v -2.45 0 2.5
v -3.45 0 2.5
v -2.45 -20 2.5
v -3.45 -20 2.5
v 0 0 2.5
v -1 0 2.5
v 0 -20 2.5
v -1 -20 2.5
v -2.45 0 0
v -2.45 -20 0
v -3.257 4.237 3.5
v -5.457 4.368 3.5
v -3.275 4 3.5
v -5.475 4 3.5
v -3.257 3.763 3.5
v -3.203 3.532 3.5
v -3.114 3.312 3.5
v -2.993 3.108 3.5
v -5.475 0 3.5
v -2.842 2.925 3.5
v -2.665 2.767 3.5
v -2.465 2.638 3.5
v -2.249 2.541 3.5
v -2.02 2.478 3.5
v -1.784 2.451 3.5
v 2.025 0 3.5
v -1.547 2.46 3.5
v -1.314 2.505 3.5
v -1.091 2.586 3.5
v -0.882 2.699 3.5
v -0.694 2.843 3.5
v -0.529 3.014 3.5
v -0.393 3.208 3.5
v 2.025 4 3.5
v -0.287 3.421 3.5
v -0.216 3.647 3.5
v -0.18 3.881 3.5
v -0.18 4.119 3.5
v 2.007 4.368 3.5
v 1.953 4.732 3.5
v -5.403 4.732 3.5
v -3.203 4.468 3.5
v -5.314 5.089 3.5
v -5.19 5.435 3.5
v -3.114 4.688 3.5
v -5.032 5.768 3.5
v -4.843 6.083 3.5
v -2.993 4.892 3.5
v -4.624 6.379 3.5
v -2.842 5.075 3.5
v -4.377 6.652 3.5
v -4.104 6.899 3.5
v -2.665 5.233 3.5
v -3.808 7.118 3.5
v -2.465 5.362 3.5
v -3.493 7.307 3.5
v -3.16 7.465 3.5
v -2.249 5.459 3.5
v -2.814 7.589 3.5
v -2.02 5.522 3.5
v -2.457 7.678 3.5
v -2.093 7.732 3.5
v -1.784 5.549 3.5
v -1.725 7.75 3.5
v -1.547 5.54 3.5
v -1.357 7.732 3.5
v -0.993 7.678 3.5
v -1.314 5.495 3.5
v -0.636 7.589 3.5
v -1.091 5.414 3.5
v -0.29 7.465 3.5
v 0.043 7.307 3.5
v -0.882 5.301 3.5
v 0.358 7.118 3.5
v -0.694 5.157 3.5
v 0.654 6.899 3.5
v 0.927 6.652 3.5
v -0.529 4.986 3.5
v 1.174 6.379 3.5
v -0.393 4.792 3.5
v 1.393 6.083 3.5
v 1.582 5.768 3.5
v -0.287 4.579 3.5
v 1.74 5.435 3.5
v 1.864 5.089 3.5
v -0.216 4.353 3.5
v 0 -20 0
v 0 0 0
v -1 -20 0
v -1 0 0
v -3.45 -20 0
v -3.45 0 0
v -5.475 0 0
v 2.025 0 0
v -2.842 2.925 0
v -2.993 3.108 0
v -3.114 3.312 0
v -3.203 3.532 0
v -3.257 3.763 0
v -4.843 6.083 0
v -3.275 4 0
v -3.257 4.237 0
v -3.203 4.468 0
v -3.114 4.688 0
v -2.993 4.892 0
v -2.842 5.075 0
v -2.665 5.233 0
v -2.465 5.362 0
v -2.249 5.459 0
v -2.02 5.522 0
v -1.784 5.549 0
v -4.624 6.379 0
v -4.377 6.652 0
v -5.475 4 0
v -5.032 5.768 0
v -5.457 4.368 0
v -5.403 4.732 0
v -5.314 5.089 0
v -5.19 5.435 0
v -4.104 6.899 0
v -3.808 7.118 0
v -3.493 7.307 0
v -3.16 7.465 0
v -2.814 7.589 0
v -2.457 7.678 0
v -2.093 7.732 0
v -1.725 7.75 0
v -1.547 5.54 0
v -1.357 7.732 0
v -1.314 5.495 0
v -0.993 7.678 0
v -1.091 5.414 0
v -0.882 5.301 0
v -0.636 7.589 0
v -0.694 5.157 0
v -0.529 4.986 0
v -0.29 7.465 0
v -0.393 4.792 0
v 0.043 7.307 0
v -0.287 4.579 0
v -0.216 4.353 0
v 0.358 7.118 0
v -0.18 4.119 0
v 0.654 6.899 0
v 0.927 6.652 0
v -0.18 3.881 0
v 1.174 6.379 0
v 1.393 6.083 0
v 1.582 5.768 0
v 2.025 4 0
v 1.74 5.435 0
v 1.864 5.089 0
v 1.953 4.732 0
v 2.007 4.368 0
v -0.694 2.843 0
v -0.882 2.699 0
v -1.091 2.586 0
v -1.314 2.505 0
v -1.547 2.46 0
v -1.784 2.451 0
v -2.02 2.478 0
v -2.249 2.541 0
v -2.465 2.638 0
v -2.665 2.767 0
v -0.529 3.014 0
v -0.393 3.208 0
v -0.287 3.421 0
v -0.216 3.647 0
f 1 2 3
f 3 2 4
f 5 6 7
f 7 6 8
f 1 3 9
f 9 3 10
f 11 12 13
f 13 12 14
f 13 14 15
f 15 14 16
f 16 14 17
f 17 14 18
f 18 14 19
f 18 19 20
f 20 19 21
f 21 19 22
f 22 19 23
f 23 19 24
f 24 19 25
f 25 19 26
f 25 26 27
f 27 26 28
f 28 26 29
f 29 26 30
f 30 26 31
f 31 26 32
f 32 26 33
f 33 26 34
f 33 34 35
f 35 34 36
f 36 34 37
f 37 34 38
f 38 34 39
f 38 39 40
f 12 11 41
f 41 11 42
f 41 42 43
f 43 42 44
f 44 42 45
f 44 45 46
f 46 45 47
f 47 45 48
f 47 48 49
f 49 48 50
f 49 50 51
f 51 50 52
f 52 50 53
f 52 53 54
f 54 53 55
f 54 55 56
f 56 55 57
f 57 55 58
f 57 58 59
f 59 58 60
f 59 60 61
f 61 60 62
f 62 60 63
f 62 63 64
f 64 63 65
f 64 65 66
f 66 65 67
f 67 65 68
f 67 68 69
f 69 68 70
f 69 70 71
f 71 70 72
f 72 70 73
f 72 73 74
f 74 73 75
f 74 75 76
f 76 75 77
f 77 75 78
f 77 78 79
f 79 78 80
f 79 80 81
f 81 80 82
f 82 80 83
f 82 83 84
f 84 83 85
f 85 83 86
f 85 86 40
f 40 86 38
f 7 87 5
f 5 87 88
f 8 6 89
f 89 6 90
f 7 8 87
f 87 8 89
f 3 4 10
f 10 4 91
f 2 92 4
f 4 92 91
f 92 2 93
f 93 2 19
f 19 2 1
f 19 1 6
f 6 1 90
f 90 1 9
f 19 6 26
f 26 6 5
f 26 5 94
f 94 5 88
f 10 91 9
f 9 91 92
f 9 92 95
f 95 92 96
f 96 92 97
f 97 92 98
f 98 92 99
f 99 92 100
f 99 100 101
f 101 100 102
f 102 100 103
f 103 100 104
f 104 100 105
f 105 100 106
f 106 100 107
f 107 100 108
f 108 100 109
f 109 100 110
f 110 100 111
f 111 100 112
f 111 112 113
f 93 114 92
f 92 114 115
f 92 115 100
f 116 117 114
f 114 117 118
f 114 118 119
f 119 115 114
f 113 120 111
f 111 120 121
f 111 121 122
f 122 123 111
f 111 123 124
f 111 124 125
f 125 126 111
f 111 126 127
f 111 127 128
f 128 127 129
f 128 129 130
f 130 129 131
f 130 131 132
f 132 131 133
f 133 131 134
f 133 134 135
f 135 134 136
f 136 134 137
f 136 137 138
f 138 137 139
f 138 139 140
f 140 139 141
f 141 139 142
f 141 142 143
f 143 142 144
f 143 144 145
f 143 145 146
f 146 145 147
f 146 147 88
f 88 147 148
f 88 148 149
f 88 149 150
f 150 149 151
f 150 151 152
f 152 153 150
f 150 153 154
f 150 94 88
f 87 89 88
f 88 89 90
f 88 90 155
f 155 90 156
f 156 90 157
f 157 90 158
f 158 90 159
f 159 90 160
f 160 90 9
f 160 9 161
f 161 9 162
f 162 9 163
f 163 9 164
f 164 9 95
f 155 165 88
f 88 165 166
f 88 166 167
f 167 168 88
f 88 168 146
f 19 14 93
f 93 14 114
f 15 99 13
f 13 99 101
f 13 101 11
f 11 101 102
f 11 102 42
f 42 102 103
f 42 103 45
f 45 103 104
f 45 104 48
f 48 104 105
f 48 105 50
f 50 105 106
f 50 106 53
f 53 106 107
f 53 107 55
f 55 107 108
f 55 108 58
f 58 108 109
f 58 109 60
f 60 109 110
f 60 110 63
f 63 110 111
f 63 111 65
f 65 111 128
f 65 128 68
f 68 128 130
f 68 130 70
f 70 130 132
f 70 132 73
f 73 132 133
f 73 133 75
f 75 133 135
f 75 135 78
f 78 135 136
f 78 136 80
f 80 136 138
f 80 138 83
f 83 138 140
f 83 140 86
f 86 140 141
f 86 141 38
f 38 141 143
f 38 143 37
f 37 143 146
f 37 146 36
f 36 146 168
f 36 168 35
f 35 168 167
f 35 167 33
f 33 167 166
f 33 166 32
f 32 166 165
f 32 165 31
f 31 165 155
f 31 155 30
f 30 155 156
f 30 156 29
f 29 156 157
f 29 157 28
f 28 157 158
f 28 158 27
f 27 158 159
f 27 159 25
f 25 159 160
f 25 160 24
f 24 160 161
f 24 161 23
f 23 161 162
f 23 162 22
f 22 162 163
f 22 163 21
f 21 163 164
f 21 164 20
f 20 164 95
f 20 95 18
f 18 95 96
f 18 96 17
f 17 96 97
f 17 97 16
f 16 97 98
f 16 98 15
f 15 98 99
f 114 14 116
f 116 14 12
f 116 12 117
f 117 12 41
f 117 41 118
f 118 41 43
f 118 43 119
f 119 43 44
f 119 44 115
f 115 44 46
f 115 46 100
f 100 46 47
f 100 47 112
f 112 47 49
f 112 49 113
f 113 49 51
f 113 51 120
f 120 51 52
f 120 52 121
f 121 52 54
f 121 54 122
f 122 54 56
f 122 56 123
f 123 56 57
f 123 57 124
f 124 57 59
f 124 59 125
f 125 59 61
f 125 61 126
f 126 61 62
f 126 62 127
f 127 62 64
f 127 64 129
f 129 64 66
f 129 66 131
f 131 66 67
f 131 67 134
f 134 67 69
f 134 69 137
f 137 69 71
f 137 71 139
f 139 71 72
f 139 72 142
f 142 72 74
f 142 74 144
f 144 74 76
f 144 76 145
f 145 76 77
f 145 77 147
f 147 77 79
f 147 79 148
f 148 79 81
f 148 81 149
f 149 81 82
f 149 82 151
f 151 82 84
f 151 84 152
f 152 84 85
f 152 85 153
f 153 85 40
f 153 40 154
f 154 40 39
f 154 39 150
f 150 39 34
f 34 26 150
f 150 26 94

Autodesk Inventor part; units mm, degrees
ref_plane "YZ Plane" through (0, 0, 0) normal (1, 0, 0) x (0, 1, 0)
ref_plane "XZ Plane" through (0, 0, 0) normal (0, 1, 0) x (-1, 0, 0)
ref_plane "XY Plane" through (0, 0, 0) normal (0, 0, 1) x (1, 0, 0)
sketch "Sketch1" plane through (0, 0, 0) normal (0, 0, 1) x (1, 0, 0)
  line L0 (0, 0) -> (-3.45, 0)
  line L1 (-3.45, 0) -> (-3.45, -20)
  line L2 (-3.45, -20) -> (0, -20)
  line L3 (0, -20) -> (0, 0)
  line L4 (-1.725, -20) -> (-5.425, -20)
  line L5 (-5.425, -20) -> (1.925, -20)
  line L6 (1.925, -20) -> (1.925, -25)
  line L7 (1.925, -25) -> (-5.425, -25)
  line L8 (-5.425, -25) -> (-5.425, -20)
  dimension "d0" = 20
  dimension "d1" = 3.45
  dimension "d2" = 3.7
  dimension "d3" = 7.35
  dimension "d4" = 5
extrude "Extrusion1" add sketch "Sketch1" along normal blind 3.5
sketch "Sketch4" plane through (0, 0, 0) normal (0, 0, -1) x (-1, 0, 0)
  line L0 (0, -20) -> (0, 0) projected
  line L1 (-1.925, -20) -> (0, -20) projected
  line L2 (-1.925, -25) -> (-1.925, -20) projected
  line L3 (5.425, -25) -> (-1.925, -25) projected
  line L4 (5.425, -20) -> (5.425, -25) projected
  line L5 (3.45, -20) -> (5.425, -20) projected
  line L6 (3.45, 0) -> (3.45, -20) projected
  line L7 (0, 0) -> (3.45, 0) projected
  line L8 (3.45, 0) -> (5.475, 0)
  line L9 (0, 0) -> (-2.025, 0)
  line L10 (5.475, 0) -> (-2.025, 0)
  line L11 (-2.025, 0) -> (-2.025, 4)
  line L12 (-2.025, 4) -> (5.475, 4)
  line L13 (5.475, 4) -> (5.475, 0)
  circle A0 centre (1.725, 4) radius 3.75
  circle A1 centre (1.725, 4) radius 1.55
  dimension "d22" = 2.025
  dimension "d23" = 2.025
  dimension "d24" = 7.5
  dimension "d25" = 4
  dimension "d26" = 3.1
extrude "Extrusion4" add sketch "Sketch4" against normal up to surface (3.5 mm away) contours L9 L11 A0 L13 L8 L7 | A0 L12 A1 | L12 A1 A0
sketch "Sketch5" plane through (0, 0, 3.5) normal (0, 0, 1) x (1, 0, 0)
  circle A0 centre (-1.725, 4) radius 1.55 projected
  line L0 (0, -20) -> (0, 0) projected
  line L1 (2.025, 0) -> (0, 0) projected
  line L2 (2.025, 4) -> (2.025, 0) projected
  arc A1 (2.025, 4) -> (-5.475, 4) centre (-1.725, 4) ccw projected
  line L3 (-5.475, 0) -> (-5.475, 4) projected
  line L4 (-3.45, 0) -> (-5.475, 0) projected
  line L5 (-3.45, 0) -> (-3.45, -20) projected
  line L6 (-3.45, -20) -> (-5.425, -20) projected
  line L7 (-5.425, -20) -> (-5.425, -25) projected
  line L8 (-5.425, -25) -> (1.925, -25) projected
  line L9 (1.925, -25) -> (1.925, -20) projected
  line L10 (1.925, -20) -> (0, -20) projected
  line L11 (-3.45, -10) -> (0, -10)
  line L12 (-1.725, -10) -> (-1, -10)
  line L13 (-1, -10) -> (-2.45, -10)
  line L14 (-2.45, -10) -> (-2.45, -20)
  line L15 (-2.45, -20) -> (-3.45, -20)
  line L16 (-1, -10) -> (-1, -20)
  line L17 (0, -20) -> (-1, -20)
  dimension "d31" = 1
  dimension "d32" = 1
extrude "Extrusion5" cut sketch "Sketch5" against normal blind 1.75 contours L10 L9 L8 L7 L6 L15 L14 L11 L16 L17
sketch "Sketch6" plane through (0, 0, 1.75) normal (0, 0, 1) x (1, 0, 0)
  line L0 (1.925, -20) -> (1.925, -25) projected
  line L1 (0, -20) -> (1.925, -20) projected
  line L2 (-1, -20) -> (0, -20) projected
  line L3 (-1, -10) -> (-1, -20) projected
  line L4 (-2.45, -10) -> (-1, -10) projected
  line L5 (-2.45, -20) -> (-2.45, -10) projected
  line L6 (-3.45, -20) -> (-2.45, -20) projected
  line L7 (-5.425, -20) -> (-3.45, -20) projected
  line L8 (-5.425, -25) -> (-5.425, -20) projected
  line L9 (1.925, -25) -> (-5.425, -25) projected
  line L10 (-2.45, -20) -> (-1, -20)
  point P0 (0, 0)
extrude "Extrusion6" cut sketch "Sketch6" against normal up to surface (1.75 mm away) contours L0 L9 L8 L7 L6 L10 L2 L1
sketch "Sketch7" plane through (-1, -20, 3.5) normal (0, -1, 0) x (1, 0, 0)
  line L0 (1, -3.5) -> (1, 0) projected
  line L1 (0, 0) -> (1, 0) projected
  line L2 (0, 0) -> (0, -1.75) projected
  line L3 (-1.45, -1.75) -> (0, -1.75) projected
  line L4 (-1.45, 0) -> (-1.45, -1.75) projected
  line L5 (-2.45, 0) -> (-1.45, 0) projected
  line L6 (-2.45, -3.5) -> (-2.45, 0) projected
  line L7 (1, -3.5) -> (-2.45, -3.5) projected
  line L8 (-2.45, -3.5) -> (-2.45, 0)
  line L9 (1, 0) -> (-2.45, 0)
  line L10 (-2.45, -3.5) -> (1, -3.5)
  line L11 (1, -3.5) -> (1, 0)
  line L12 (-1.95, -0.5) -> (-1.95, -3)
  line L13 (-1.95, -3) -> (0.5, -3)
  line L14 (0.5, -3) -> (0.5, -0.5)
  line L15 (0.5, -0.5) -> (-1.95, -0.5)
  point P0 (1, -3.5)
  dimension "d37" = 0.5
extrude "Extrusion7" cut sketch "Sketch7" against normal up to surface (20 mm away) contours L7 L6 L5 L4 L15 L12 L13 L14 L2 L1 L0 | L2 L15 L4 L9
sketch "Sketch8" plane through (-2.45, -20, 1.75) normal (0, -1, 0) x (1, 0, 0)
  line L0 (1.95, 1.25) -> (1.45, 1.25) projected
  line L1 (1.45, 1.25) -> (1.45, 0) projected
  line L2 (0, 0) -> (1.45, 0) projected
  line L3 (0, 1.25) -> (0, 0) projected
  line L4 (0, 1.25) -> (-0.5, 1.25) projected
  line L5 (-0.5, 1.25) -> (-0.5, -1.25) projected
  line L6 (-0.5, -1.25) -> (1.95, -1.25) projected
  line L7 (1.95, -1.25) -> (1.95, 1.25) projected
  line L8 (2.45, -1.75) -> (-1, -1.75)
  line L9 (-1, -1.75) -> (-1, 1.75)
  line L10 (-1, 1.75) -> (0.5, 1.75)
  line L11 (0.5, 1.75) -> (0.5, 0.5)
  line L12 (0.5, 0.5) -> (0.95, 0.5)
  line L13 (0.95, 0.5) -> (0.95, 1.75)
  line L14 (0.95, 1.75) -> (2.45, 1.75)
  line L15 (2.45, 1.75) -> (2.45, -1.75)
  line L16 (0, 1.25) -> (0, 1.75)
  line L17 (0, 1.75) -> (-1, 1.75)
  line L18 (-1, 1.75) -> (-1, -1.75)
  line L19 (-1, -1.75) -> (2.45, -1.75)
  line L20 (2.45, -1.75) -> (2.45, 1.75)
  line L21 (2.45, 1.75) -> (1.45, 1.75)
  line L22 (1.45, 0) -> (1.45, 1.75)
  line L23 (0, 0) -> (1.45, 0)
  line L24 (0, 0) -> (0, 1.25)
  point P0 (2.45, -1.75)
extrude "Extrusion8" add sketch "Sketch8" against normal blind 20 contours L0 L22 L14 L15 L8 L9 L10 L16 L4 L5 L6 L7
sketch "Sketch9" plane through (-2.45, 0, 3) normal (0, 0, 1) x (1, 0, 0)
  line L0 (1.45, -10) -> (1.45, 0) projected
  line L1 (1.45, 0) -> (0, 0) projected
  line L2 (0, 0) -> (0, -10) projected
  line L3 (1.45, -10) -> (0, -10) projected
  line L4 (0, -20) -> (1.45, -20) projected
  line L5 (1.45, -10) -> (1.45, -20) projected
  line L6 (0, -10) -> (1.45, -10) projected
  line L7 (0, -20) -> (0, -10) projected
  point P0 (2.45, 0)
extrude "Extrusion9" cut sketch "Sketch9" against normal up to surface (3 mm away)
sketch "Sketch11" plane through (0, 0, 3.5) normal (0, 0, 1) x (1, 0, 0)
  line L0 (2.025, 0) -> (0, 0) projected
  line L1 (2.025, 4) -> (2.025, 0) projected
  arc A0 (2.025, 4) -> (-5.475, 4) centre (-1.725, 4) ccw projected
  line L2 (-5.475, 0) -> (-5.475, 4) projected
  line L3 (-3.45, 0) -> (-5.475, 0) projected
  line L4 (-3.45, -20) -> (-3.45, 0) projected
  line L5 (-2.45, -20) -> (-3.45, -20) projected
  line L6 (-2.45, -20) -> (-2.45, 0) projected
  line L7 (-1, 0) -> (-2.45, 0) projected
  line L8 (-1, -20) -> (-1, 0) projected
  line L9 (0, -20) -> (-1, -20) projected
  line L10 (0, -20) -> (0, 0) projected
  circle A1 centre (-1.725, 4) radius 1.55 projected
  line L11 (-1, 0) -> (0, 0)
  line L12 (-2.45, 0) -> (-3.45, 0)
  point P0 (0, 0)
extrude "Extrusion11" cut sketch "Sketch11" against normal blind 1 contours L10 L9 L8 L11 | L6 L5 L4 L12
equation "\"d23\" = d22"
equation "\"d32\" = d31"
properties part number "Piston"
